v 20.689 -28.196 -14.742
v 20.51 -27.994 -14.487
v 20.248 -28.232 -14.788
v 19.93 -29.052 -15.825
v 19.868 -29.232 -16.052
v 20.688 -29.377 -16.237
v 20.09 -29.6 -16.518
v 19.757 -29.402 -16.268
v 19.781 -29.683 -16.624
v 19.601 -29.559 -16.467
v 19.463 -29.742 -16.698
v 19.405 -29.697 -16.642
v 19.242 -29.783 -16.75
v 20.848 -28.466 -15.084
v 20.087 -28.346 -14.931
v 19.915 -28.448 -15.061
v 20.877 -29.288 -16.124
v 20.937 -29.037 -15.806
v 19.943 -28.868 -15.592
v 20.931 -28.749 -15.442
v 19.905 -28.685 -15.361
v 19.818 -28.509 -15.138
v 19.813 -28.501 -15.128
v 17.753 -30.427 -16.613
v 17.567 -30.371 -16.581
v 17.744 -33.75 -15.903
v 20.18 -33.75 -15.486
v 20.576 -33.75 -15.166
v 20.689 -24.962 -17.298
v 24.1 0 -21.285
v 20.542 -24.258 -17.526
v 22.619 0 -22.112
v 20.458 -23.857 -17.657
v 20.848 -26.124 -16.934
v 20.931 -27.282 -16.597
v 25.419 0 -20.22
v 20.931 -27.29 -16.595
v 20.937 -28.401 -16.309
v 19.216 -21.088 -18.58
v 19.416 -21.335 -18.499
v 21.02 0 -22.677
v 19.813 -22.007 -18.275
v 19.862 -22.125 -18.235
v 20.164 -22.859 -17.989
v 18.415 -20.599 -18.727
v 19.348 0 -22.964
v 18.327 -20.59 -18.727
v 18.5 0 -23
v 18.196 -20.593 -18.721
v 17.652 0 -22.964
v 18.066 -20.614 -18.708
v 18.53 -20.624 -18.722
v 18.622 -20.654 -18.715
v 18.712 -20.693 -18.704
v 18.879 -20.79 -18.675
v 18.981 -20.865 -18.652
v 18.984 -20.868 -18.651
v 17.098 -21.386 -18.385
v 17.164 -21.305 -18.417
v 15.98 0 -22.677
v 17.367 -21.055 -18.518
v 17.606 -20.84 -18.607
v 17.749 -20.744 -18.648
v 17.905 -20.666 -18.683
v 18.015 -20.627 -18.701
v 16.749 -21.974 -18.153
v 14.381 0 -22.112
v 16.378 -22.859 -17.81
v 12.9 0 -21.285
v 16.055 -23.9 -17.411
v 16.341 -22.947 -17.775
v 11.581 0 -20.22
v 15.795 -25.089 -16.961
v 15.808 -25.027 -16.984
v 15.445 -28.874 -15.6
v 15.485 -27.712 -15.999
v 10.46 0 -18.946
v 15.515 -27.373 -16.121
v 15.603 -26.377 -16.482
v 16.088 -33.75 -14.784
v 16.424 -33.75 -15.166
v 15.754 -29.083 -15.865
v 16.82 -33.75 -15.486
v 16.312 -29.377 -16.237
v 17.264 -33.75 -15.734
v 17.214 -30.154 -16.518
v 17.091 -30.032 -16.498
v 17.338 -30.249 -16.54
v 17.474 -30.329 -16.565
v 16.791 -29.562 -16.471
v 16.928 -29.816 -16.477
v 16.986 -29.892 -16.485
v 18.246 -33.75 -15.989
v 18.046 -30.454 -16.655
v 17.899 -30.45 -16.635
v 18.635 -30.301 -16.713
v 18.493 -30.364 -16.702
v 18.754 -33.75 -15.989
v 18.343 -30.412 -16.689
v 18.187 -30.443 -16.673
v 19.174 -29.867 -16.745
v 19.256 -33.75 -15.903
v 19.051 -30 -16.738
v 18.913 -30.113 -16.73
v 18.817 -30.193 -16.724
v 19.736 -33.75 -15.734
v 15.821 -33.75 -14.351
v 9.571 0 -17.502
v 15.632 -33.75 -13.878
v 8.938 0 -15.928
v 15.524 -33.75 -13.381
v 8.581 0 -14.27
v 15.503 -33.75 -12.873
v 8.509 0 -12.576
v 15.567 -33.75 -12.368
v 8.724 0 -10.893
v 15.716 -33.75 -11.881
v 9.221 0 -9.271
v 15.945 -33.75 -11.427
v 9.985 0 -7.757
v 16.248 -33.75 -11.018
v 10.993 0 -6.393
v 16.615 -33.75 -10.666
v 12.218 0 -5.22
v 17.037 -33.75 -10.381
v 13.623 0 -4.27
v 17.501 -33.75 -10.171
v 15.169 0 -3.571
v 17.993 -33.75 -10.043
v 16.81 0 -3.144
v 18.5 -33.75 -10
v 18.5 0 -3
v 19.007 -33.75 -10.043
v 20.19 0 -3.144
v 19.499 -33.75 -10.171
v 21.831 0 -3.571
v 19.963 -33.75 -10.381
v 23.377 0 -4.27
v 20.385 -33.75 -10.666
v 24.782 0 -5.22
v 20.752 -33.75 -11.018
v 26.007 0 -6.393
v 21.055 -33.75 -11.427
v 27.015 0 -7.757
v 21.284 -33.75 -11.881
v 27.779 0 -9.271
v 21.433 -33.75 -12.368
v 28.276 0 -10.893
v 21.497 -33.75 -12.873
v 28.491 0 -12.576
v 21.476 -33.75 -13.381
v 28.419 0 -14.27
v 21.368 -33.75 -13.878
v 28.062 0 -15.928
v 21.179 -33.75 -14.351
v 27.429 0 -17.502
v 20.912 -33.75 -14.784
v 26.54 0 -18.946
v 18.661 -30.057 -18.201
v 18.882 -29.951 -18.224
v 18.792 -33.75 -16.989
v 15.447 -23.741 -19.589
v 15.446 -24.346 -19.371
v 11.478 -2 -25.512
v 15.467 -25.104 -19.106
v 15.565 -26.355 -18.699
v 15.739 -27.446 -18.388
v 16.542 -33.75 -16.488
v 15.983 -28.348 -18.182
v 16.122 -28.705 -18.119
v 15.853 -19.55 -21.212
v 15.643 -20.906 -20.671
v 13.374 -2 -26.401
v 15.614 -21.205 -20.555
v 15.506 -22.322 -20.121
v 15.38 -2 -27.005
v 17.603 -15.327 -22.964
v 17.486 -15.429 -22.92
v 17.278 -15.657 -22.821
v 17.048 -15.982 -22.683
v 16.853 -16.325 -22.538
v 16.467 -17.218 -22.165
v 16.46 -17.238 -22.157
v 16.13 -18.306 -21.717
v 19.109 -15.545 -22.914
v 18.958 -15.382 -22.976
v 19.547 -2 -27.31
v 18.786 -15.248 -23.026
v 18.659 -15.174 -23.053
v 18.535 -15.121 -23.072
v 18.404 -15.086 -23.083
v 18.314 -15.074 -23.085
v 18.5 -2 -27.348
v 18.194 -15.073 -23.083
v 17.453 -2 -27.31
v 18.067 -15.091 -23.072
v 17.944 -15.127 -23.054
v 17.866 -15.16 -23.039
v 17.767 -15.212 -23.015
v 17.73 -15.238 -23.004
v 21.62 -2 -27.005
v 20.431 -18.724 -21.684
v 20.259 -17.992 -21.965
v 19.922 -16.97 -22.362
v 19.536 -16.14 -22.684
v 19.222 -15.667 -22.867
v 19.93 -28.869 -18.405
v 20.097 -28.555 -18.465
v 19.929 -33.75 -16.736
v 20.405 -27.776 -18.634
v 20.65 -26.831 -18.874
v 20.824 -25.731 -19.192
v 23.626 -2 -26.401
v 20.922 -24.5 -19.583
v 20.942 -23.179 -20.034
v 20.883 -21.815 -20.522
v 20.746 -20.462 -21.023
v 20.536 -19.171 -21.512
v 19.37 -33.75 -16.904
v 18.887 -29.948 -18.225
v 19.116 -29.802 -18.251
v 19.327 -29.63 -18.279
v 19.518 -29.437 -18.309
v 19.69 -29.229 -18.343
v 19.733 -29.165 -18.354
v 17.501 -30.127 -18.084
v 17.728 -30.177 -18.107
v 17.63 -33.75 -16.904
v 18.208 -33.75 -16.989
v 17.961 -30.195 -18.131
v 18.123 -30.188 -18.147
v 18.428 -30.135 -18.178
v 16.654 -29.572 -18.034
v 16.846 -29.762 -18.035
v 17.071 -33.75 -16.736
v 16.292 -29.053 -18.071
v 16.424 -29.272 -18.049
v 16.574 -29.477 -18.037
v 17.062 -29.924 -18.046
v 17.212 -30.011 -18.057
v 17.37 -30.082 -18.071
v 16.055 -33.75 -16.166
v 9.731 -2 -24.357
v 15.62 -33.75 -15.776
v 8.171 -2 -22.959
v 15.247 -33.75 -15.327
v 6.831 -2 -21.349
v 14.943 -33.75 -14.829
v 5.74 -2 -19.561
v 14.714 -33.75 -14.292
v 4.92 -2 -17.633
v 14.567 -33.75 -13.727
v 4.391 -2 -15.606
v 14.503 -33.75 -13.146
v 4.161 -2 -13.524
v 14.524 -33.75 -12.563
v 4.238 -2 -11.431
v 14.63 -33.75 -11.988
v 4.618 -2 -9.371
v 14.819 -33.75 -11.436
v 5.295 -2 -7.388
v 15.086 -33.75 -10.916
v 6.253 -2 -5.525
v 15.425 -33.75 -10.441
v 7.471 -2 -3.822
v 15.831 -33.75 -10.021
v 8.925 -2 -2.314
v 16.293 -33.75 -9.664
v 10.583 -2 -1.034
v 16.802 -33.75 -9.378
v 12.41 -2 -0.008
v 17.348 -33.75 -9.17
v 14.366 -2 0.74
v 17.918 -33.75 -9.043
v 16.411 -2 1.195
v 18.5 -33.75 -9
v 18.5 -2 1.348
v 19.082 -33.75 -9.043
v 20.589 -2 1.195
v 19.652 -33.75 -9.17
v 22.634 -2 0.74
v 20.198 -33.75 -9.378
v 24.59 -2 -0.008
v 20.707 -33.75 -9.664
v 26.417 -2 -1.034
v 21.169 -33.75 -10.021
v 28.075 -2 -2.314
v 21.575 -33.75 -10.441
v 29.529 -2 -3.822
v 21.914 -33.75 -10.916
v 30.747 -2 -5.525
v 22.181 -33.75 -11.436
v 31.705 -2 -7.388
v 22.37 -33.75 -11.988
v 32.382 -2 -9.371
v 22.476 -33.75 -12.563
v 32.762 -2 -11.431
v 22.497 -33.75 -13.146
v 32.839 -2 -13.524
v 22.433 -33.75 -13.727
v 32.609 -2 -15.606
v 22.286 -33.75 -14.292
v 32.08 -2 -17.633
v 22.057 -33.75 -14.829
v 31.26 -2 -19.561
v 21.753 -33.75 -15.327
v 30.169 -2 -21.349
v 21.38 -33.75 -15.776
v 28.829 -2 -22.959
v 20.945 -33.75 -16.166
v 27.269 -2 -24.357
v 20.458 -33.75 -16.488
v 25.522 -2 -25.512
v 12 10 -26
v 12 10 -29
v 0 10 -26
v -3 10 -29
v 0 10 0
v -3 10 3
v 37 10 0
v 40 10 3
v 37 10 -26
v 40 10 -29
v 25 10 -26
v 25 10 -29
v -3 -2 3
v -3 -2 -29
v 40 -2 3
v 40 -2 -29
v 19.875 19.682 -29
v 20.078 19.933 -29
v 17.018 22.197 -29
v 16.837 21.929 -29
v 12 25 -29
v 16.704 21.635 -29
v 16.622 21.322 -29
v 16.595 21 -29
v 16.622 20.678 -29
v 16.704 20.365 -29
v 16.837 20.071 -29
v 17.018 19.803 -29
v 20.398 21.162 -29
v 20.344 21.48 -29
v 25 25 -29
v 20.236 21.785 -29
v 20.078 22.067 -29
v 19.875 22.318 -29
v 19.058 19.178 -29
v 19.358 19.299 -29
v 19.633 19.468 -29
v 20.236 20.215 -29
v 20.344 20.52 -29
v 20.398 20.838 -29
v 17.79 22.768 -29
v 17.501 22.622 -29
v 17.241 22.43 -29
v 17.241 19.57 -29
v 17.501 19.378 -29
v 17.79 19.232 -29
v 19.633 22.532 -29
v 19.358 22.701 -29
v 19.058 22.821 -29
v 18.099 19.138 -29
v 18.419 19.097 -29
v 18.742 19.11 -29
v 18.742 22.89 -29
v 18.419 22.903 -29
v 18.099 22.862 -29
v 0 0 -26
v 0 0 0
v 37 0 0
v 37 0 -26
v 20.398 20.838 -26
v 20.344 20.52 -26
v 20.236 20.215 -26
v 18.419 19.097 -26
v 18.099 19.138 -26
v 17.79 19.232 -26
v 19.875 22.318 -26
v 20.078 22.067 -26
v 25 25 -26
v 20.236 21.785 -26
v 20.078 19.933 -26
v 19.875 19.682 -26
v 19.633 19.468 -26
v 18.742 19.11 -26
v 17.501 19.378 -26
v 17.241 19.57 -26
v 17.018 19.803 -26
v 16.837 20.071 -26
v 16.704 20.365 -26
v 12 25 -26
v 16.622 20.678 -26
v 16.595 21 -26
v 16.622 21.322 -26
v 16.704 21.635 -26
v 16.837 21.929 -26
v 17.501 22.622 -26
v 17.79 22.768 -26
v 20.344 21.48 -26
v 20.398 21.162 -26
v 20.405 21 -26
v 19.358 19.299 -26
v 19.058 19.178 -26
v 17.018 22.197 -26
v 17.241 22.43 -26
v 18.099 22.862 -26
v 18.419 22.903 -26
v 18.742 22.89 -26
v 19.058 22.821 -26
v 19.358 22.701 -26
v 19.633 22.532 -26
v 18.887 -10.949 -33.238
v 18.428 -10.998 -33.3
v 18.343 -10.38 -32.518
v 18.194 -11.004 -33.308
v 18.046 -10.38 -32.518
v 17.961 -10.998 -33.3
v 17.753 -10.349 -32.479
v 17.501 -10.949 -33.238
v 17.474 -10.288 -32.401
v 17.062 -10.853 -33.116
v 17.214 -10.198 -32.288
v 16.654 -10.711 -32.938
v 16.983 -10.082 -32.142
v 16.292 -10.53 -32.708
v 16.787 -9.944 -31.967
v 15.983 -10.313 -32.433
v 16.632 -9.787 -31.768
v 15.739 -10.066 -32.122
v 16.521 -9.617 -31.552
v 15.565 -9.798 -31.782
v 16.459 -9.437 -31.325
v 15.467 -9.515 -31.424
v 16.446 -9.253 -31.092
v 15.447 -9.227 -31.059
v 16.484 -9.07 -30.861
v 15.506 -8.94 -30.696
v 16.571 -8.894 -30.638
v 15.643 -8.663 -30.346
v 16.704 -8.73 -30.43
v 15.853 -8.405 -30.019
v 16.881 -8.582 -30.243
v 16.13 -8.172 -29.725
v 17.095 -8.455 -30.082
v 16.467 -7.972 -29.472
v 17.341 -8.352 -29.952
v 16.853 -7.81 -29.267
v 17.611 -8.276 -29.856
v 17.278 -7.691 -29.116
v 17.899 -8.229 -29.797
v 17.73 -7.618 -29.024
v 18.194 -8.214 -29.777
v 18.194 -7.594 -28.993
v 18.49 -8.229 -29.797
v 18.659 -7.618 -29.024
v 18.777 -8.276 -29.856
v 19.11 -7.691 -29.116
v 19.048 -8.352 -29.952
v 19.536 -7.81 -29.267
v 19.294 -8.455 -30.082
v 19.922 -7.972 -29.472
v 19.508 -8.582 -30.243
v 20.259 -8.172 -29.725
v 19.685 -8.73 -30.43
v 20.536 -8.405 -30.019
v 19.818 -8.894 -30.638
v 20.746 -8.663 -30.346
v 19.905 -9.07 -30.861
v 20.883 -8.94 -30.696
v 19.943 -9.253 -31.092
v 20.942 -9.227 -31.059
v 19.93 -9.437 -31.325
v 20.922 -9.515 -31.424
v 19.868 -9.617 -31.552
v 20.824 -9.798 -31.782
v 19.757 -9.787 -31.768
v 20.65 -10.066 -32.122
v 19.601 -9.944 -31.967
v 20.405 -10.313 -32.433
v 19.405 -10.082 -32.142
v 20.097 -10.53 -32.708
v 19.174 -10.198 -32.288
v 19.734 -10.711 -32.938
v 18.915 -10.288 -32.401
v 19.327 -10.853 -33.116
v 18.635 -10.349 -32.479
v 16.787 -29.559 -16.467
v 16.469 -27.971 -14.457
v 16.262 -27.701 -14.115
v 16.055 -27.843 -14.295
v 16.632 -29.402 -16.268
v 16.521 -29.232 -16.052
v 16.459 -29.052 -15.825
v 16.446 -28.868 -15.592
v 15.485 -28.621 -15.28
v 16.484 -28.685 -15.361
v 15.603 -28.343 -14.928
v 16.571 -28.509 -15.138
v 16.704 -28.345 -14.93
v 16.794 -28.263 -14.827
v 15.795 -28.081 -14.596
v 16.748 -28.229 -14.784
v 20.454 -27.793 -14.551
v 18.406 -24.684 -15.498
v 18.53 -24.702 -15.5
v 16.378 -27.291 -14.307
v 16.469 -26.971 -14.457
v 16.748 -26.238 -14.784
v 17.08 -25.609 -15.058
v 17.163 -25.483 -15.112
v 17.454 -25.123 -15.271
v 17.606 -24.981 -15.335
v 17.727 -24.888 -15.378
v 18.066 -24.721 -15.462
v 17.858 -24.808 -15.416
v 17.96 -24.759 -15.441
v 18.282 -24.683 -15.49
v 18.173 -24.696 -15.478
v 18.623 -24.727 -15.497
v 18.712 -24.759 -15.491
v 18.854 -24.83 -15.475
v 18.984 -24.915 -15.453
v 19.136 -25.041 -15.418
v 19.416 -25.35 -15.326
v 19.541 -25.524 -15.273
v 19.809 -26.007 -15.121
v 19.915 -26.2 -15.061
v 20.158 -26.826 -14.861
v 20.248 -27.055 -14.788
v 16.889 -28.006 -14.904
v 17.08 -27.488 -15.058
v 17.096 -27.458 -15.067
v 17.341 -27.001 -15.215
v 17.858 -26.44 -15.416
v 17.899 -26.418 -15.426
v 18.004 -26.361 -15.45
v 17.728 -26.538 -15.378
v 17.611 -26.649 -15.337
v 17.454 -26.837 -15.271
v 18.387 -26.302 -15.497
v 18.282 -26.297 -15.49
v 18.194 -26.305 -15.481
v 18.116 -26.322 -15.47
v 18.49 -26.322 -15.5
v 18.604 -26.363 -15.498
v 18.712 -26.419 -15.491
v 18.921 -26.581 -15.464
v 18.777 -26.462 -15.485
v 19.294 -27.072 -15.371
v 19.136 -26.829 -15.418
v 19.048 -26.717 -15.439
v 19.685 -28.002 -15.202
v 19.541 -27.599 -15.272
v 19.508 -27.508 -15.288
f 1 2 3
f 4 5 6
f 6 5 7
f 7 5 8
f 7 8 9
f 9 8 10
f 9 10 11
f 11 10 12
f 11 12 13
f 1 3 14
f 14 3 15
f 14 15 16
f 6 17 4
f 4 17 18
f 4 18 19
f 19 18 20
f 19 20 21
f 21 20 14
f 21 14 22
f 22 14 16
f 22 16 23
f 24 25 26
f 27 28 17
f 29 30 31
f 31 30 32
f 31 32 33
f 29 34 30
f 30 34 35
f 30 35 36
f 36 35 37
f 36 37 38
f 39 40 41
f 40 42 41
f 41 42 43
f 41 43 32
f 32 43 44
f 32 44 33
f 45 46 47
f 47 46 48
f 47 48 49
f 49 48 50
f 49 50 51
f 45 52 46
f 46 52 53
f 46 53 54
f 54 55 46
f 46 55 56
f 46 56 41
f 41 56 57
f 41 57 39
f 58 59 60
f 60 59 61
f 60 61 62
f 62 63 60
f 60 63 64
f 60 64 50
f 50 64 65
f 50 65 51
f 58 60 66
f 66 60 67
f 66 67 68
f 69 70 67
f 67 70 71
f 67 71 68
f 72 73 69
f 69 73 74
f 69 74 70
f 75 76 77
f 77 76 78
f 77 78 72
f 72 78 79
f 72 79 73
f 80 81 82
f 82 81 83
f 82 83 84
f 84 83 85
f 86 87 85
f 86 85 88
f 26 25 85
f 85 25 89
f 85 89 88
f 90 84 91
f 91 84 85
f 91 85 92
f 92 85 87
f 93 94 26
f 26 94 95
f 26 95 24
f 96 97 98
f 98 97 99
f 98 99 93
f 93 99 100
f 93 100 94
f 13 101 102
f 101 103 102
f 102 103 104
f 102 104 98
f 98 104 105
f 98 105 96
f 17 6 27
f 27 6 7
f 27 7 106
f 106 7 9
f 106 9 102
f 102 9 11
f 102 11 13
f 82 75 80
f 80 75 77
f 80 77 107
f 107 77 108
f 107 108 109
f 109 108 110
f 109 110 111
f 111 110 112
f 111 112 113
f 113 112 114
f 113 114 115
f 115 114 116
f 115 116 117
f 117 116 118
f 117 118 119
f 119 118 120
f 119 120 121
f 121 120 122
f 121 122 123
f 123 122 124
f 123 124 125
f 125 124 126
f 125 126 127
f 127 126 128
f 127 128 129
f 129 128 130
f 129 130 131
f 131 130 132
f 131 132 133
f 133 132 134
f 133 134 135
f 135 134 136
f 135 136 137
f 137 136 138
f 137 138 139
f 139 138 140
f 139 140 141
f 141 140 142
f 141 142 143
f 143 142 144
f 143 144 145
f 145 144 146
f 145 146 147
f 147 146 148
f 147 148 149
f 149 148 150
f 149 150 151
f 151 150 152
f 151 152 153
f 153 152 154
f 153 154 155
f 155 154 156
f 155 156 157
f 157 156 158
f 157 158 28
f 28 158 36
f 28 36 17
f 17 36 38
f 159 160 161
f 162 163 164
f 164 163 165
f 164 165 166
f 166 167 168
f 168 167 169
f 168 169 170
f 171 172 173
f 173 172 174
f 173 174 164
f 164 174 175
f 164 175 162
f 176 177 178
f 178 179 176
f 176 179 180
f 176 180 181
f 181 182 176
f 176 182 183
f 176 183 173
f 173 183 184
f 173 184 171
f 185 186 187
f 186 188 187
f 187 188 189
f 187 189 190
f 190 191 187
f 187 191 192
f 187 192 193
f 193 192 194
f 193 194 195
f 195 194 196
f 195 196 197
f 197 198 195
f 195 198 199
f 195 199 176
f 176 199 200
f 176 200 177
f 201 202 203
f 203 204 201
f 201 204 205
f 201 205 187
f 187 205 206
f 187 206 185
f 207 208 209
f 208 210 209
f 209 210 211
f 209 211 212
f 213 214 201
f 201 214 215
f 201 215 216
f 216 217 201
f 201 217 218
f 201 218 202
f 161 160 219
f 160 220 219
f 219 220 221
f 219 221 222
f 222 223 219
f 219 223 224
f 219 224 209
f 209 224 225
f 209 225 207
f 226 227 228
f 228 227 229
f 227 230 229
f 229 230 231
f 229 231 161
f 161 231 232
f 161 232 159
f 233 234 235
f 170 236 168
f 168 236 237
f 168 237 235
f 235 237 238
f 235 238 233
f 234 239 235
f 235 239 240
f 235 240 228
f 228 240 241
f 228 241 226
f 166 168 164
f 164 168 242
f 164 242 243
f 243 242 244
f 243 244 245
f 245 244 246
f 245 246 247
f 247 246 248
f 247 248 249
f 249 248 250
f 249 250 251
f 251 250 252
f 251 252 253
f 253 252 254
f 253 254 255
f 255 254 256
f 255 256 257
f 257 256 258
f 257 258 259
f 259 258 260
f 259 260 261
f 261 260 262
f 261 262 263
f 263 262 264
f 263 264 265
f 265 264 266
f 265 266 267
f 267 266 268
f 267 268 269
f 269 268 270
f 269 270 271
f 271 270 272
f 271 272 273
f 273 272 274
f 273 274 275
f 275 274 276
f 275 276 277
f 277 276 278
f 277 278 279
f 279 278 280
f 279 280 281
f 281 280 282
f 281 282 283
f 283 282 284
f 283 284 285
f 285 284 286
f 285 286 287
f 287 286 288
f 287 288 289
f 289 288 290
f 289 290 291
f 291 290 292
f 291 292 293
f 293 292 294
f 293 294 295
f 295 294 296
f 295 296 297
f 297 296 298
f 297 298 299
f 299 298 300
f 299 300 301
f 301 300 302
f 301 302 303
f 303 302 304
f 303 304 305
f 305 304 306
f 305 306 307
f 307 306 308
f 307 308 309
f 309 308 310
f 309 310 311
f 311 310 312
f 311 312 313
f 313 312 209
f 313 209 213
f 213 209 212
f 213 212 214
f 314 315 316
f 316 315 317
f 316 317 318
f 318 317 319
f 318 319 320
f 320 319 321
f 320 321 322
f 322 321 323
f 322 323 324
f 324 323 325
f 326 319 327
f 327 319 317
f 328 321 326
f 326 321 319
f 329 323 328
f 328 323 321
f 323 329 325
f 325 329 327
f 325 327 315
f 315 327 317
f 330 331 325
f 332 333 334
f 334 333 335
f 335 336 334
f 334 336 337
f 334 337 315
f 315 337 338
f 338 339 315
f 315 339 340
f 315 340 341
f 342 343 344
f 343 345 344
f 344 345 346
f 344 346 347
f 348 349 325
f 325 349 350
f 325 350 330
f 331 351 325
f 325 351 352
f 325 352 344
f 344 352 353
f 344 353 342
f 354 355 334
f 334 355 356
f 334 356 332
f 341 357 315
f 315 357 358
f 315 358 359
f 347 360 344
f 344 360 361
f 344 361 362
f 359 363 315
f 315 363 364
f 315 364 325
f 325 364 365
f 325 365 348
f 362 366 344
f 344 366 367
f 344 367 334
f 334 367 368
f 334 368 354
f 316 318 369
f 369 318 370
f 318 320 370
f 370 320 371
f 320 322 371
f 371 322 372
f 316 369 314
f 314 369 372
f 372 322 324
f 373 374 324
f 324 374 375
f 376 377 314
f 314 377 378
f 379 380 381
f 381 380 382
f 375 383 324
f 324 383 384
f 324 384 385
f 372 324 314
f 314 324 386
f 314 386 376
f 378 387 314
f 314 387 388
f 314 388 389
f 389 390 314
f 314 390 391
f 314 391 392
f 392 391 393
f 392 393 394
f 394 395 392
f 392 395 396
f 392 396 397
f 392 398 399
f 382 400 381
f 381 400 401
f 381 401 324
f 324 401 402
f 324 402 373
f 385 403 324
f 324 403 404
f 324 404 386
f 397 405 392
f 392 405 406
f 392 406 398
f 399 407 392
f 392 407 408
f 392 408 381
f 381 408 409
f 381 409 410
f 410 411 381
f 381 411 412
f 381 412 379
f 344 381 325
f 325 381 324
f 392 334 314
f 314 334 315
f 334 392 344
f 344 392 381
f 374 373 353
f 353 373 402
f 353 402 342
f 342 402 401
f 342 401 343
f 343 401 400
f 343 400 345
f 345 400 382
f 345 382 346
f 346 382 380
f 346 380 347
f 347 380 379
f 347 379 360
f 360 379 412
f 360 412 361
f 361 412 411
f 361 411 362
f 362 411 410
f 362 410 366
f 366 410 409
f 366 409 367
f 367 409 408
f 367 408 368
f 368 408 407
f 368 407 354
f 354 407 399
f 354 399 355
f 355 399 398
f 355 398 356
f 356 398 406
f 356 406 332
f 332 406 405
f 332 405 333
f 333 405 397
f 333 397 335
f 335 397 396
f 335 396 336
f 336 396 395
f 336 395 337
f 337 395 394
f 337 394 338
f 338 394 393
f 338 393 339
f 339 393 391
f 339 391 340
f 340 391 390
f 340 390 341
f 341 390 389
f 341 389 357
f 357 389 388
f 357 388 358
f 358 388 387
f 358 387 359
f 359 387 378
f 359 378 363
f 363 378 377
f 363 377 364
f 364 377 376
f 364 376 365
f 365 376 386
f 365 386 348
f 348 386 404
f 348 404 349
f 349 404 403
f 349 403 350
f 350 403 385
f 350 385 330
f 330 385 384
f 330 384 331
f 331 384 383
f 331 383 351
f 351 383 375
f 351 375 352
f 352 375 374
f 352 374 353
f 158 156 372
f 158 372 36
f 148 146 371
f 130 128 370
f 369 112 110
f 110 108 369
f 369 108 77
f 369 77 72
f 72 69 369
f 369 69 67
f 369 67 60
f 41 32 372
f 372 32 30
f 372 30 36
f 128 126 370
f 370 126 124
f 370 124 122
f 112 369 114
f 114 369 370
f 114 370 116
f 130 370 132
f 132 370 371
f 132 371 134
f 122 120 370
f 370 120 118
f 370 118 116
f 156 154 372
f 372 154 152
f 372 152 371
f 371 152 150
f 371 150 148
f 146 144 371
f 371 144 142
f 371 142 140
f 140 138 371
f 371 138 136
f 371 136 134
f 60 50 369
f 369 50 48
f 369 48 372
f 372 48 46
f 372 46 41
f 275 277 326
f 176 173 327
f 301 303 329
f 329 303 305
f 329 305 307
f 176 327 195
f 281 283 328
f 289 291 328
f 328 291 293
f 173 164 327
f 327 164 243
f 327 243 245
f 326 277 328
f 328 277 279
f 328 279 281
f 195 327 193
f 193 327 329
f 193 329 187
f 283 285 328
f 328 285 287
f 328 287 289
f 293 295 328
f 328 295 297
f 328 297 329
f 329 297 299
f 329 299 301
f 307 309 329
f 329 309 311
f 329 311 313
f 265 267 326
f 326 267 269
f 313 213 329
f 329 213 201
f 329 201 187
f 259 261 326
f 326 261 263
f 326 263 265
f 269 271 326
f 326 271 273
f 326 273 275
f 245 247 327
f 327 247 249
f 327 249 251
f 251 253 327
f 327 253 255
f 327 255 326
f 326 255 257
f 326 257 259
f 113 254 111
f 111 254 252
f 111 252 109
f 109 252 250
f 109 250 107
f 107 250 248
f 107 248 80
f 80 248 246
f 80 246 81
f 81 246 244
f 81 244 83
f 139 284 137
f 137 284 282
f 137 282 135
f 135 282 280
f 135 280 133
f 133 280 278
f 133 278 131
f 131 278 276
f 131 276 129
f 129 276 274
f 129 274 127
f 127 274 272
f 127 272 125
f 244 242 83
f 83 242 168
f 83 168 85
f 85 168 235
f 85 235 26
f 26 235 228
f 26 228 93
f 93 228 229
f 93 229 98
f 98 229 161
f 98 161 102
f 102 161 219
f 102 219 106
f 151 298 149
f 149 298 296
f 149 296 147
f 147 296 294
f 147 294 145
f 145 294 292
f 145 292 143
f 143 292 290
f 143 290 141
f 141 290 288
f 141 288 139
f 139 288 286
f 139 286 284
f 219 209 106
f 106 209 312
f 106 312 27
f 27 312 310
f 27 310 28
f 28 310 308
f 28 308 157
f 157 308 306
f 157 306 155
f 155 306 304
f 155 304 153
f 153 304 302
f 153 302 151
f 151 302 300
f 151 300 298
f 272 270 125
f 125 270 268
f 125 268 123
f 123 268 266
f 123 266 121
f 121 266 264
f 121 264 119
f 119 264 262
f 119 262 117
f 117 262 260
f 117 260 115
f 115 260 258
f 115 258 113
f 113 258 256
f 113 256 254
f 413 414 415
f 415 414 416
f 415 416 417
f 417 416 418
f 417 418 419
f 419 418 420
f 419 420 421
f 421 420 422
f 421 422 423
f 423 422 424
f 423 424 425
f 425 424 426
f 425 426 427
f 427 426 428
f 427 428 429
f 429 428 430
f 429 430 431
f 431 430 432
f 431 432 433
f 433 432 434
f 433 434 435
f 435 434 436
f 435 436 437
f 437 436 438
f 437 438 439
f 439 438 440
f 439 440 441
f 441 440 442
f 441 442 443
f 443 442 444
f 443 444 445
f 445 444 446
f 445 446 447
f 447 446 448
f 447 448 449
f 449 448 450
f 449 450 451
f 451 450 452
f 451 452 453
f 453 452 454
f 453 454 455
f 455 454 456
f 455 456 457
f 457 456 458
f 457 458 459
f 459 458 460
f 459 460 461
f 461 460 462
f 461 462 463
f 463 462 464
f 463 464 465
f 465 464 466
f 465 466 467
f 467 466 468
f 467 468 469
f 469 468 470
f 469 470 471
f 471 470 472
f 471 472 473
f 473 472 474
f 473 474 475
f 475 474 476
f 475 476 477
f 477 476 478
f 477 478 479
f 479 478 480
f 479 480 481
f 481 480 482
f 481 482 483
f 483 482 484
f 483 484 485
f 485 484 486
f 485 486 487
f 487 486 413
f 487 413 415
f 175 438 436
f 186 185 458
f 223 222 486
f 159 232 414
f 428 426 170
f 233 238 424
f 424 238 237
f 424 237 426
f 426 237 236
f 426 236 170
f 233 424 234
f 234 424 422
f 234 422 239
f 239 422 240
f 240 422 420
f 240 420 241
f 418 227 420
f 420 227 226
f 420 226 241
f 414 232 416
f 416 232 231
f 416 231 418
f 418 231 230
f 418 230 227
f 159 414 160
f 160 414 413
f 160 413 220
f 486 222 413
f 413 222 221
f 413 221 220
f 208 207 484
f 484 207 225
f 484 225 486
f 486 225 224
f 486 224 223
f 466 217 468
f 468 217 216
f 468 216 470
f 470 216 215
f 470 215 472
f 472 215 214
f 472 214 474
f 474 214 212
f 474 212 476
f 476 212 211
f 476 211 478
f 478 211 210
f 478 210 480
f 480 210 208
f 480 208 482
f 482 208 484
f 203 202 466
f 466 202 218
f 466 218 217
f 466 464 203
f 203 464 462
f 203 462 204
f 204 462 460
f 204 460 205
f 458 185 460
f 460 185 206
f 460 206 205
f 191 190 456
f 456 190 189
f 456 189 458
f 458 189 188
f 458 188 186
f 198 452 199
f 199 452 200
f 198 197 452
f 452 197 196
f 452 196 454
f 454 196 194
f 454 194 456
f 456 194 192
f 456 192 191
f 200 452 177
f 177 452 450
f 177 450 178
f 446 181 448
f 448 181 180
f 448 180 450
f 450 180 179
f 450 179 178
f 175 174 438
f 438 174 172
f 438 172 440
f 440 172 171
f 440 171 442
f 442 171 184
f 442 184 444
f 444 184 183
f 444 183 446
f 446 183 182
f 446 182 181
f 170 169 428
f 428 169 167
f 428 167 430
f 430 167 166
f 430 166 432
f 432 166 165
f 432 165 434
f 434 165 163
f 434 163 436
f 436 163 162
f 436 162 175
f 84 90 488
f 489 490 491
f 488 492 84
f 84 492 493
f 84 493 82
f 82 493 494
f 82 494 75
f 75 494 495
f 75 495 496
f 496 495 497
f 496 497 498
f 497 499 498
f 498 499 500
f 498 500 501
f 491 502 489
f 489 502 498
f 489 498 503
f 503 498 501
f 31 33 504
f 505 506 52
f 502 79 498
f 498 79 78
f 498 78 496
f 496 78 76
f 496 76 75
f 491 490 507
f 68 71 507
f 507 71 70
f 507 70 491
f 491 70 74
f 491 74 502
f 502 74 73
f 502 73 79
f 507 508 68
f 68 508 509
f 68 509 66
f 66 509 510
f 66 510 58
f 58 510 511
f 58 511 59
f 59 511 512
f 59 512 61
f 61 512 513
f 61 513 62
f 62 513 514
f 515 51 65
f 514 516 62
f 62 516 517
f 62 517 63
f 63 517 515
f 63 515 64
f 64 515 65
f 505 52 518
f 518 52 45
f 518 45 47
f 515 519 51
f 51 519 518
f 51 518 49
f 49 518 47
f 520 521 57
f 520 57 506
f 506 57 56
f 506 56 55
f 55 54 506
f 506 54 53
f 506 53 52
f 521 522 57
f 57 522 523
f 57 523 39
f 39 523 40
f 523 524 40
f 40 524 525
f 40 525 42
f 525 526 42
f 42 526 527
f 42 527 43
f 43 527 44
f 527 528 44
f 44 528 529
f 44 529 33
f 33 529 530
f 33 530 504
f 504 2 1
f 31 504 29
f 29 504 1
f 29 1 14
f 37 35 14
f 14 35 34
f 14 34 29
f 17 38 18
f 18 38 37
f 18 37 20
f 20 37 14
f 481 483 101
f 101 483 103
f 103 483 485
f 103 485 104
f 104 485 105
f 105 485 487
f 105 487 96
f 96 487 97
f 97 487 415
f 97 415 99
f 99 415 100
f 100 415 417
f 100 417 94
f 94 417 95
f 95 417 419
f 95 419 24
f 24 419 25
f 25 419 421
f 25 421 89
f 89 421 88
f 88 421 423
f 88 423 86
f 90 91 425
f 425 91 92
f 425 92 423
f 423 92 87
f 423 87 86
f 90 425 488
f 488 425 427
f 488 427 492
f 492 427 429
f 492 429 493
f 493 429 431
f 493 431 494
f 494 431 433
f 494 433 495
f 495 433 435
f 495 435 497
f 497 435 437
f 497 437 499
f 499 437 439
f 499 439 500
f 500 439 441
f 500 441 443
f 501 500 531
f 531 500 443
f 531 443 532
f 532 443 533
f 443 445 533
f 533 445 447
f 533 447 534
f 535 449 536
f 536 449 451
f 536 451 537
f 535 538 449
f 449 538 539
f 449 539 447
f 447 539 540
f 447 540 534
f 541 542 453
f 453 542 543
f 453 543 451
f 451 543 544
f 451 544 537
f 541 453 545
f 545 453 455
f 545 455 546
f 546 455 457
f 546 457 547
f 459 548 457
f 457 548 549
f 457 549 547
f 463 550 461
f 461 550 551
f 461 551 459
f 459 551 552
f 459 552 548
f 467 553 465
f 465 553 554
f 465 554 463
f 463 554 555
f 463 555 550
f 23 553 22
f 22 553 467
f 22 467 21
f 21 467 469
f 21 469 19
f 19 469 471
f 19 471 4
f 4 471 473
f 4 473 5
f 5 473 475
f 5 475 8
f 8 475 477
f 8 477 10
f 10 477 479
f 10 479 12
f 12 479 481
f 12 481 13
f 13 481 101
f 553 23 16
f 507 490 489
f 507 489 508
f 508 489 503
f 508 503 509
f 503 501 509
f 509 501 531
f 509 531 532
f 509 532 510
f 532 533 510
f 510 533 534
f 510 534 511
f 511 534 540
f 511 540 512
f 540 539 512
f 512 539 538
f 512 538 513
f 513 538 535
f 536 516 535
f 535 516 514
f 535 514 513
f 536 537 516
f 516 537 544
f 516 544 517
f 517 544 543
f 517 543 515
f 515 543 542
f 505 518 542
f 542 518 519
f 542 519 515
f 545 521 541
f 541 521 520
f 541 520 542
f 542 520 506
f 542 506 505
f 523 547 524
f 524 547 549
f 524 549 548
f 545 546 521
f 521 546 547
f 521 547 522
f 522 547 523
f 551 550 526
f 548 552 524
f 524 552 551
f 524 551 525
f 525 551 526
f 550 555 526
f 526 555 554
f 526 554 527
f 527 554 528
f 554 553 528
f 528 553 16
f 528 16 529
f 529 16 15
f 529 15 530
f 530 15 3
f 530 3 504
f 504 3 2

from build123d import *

# Parameters (mm, degrees)
SKETCH1_W           = 43
SKETCH1_H           = 32
SKETCH1_W_2         = 37
SKETCH1_H_2         = 26
BOSS_EXTRUDE1_DEPTH = 10
SKETCH2_W           = 13
SKETCH2_H           = 3
BOSS_EXTRUDE2_DEPTH = 15
CUT_EXTRUDE1_REACH  = 34
SKETCH3_R           = 1.905
SKETCH4_W           = 43
SKETCH4_H           = 32
BOSS_EXTRUDE3_DEPTH = 2
CUT_EXTRUDE2_REACH  = 29
SKETCH5_R           = 10
BOSS_EXTRUDE4_START = -5
SKETCH14_R          = 2.75
BOSS_EXTRUDE4_DEPTH = 25
SKETCH16_R          = 1.75
CUT_EXTRUDE3_DEPTH  = 30
SKETCH17_R          = 2.5
CUT_EXTRUDE4_DEPTH  = 10


with BuildPart() as part:
    # Sketch1 → Boss-Extrude1 (new body)
    with BuildSketch(Plane(origin=(0, 0, 0), x_dir=(1, 0, 0), z_dir=(0, 1, 0))):
        with Locations((18.5, 13)):
            Rectangle(SKETCH1_W, SKETCH1_H)
        with Locations((18.5, 13)):
            Rectangle(SKETCH1_W_2, SKETCH1_H_2, mode=Mode.SUBTRACT)
    extrude(amount=BOSS_EXTRUDE1_DEPTH)

    # Sketch2 → Boss-Extrude2 (add)
    with BuildSketch(Plane(origin=(0, 10, 0), x_dir=(1, 0, 0), z_dir=(0, 1, 0))):
        with Locations((18.5, 27.5)):
            Rectangle(SKETCH2_W, SKETCH2_H)
    extrude(amount=BOSS_EXTRUDE2_DEPTH)

    # Sketch3 → Cut-Extrude1 (cut, up to next)
    with BuildSketch(Plane(origin=(0, 0, -29), x_dir=(-1, 0, 0), z_dir=(0, 0, -1)), mode=Mode.PRIVATE) as cut_extrude1_sk1:
        with Locations((-18.5, 21)):
            Circle(SKETCH3_R)
    cut_extrude1_tool1 = extrude(cut_extrude1_sk1.sketch, amount=-CUT_EXTRUDE1_REACH, mode=Mode.PRIVATE) & part.part
    add(cut_extrude1_tool1.solids().sort_by_distance((18.5, 21, -29))[0], mode=Mode.SUBTRACT)

    # Sketch4 → Boss-Extrude3 (add)
    with BuildSketch(Plane.XZ):
        with Locations((18.5, -13)):
            Rectangle(SKETCH4_W, SKETCH4_H)
    extrude(amount=BOSS_EXTRUDE3_DEPTH)

    # Sketch5 → Cut-Extrude2 (cut, up to next)
    with BuildSketch(Plane.XZ.offset(2), mode=Mode.PRIVATE) as cut_extrude2_sk1:
        with Locations((18.5, -13)):
            Circle(SKETCH5_R)
    cut_extrude2_tool1 = extrude(cut_extrude2_sk1.sketch, amount=-CUT_EXTRUDE2_REACH, mode=Mode.PRIVATE) & part.part
    add(cut_extrude2_tool1.solids().sort_by_distance((18.5, -2, -13))[0], mode=Mode.SUBTRACT)

    # Sketch9 → Revolve1 (revolve)
    with BuildSketch(Plane.XY.offset(-13)):
        Polygon((28.5, 0), (21.5, -33.75), (22.5, -33.75), (33.5, 0), align=None)
    revolve(axis=Axis((18.5, -2, -13), (0, -1, 0)))

    # Sketch14 → Boss-Extrude4 (add)
    with BuildSketch(Plane(origin=(18.5, -13.221888935, -28.050276014), x_dir=(-1, 0, 0), z_dir=(0, -0.784602856, 0.619998676)).offset(BOSS_EXTRUDE4_START)):
        with Locations((0.305660396, 0)):
            Circle(SKETCH14_R)
    extrude(amount=BOSS_EXTRUDE4_DEPTH)

    # Sketch16 → Cut-Extrude3 (cut)
    with BuildSketch(Plane(origin=(0, 9.428731153, -7.45064945), x_dir=(1, 0, 0), z_dir=(0, 0.784602856, -0.619998676))):
        with Locations((18.194339604, 30.205880304)):
            Circle(SKETCH16_R)
    extrude(amount=-CUT_EXTRUDE3_DEPTH, mode=Mode.SUBTRACT)

    # Sketch17 → Cut-Extrude4 (cut)
    with BuildSketch(Plane.XZ.offset(33.75)):
        with Locations((18.5, -13)):
            Circle(SKETCH17_R)
    extrude(amount=-CUT_EXTRUDE4_DEPTH, mode=Mode.SUBTRACT)


solid = part.part
